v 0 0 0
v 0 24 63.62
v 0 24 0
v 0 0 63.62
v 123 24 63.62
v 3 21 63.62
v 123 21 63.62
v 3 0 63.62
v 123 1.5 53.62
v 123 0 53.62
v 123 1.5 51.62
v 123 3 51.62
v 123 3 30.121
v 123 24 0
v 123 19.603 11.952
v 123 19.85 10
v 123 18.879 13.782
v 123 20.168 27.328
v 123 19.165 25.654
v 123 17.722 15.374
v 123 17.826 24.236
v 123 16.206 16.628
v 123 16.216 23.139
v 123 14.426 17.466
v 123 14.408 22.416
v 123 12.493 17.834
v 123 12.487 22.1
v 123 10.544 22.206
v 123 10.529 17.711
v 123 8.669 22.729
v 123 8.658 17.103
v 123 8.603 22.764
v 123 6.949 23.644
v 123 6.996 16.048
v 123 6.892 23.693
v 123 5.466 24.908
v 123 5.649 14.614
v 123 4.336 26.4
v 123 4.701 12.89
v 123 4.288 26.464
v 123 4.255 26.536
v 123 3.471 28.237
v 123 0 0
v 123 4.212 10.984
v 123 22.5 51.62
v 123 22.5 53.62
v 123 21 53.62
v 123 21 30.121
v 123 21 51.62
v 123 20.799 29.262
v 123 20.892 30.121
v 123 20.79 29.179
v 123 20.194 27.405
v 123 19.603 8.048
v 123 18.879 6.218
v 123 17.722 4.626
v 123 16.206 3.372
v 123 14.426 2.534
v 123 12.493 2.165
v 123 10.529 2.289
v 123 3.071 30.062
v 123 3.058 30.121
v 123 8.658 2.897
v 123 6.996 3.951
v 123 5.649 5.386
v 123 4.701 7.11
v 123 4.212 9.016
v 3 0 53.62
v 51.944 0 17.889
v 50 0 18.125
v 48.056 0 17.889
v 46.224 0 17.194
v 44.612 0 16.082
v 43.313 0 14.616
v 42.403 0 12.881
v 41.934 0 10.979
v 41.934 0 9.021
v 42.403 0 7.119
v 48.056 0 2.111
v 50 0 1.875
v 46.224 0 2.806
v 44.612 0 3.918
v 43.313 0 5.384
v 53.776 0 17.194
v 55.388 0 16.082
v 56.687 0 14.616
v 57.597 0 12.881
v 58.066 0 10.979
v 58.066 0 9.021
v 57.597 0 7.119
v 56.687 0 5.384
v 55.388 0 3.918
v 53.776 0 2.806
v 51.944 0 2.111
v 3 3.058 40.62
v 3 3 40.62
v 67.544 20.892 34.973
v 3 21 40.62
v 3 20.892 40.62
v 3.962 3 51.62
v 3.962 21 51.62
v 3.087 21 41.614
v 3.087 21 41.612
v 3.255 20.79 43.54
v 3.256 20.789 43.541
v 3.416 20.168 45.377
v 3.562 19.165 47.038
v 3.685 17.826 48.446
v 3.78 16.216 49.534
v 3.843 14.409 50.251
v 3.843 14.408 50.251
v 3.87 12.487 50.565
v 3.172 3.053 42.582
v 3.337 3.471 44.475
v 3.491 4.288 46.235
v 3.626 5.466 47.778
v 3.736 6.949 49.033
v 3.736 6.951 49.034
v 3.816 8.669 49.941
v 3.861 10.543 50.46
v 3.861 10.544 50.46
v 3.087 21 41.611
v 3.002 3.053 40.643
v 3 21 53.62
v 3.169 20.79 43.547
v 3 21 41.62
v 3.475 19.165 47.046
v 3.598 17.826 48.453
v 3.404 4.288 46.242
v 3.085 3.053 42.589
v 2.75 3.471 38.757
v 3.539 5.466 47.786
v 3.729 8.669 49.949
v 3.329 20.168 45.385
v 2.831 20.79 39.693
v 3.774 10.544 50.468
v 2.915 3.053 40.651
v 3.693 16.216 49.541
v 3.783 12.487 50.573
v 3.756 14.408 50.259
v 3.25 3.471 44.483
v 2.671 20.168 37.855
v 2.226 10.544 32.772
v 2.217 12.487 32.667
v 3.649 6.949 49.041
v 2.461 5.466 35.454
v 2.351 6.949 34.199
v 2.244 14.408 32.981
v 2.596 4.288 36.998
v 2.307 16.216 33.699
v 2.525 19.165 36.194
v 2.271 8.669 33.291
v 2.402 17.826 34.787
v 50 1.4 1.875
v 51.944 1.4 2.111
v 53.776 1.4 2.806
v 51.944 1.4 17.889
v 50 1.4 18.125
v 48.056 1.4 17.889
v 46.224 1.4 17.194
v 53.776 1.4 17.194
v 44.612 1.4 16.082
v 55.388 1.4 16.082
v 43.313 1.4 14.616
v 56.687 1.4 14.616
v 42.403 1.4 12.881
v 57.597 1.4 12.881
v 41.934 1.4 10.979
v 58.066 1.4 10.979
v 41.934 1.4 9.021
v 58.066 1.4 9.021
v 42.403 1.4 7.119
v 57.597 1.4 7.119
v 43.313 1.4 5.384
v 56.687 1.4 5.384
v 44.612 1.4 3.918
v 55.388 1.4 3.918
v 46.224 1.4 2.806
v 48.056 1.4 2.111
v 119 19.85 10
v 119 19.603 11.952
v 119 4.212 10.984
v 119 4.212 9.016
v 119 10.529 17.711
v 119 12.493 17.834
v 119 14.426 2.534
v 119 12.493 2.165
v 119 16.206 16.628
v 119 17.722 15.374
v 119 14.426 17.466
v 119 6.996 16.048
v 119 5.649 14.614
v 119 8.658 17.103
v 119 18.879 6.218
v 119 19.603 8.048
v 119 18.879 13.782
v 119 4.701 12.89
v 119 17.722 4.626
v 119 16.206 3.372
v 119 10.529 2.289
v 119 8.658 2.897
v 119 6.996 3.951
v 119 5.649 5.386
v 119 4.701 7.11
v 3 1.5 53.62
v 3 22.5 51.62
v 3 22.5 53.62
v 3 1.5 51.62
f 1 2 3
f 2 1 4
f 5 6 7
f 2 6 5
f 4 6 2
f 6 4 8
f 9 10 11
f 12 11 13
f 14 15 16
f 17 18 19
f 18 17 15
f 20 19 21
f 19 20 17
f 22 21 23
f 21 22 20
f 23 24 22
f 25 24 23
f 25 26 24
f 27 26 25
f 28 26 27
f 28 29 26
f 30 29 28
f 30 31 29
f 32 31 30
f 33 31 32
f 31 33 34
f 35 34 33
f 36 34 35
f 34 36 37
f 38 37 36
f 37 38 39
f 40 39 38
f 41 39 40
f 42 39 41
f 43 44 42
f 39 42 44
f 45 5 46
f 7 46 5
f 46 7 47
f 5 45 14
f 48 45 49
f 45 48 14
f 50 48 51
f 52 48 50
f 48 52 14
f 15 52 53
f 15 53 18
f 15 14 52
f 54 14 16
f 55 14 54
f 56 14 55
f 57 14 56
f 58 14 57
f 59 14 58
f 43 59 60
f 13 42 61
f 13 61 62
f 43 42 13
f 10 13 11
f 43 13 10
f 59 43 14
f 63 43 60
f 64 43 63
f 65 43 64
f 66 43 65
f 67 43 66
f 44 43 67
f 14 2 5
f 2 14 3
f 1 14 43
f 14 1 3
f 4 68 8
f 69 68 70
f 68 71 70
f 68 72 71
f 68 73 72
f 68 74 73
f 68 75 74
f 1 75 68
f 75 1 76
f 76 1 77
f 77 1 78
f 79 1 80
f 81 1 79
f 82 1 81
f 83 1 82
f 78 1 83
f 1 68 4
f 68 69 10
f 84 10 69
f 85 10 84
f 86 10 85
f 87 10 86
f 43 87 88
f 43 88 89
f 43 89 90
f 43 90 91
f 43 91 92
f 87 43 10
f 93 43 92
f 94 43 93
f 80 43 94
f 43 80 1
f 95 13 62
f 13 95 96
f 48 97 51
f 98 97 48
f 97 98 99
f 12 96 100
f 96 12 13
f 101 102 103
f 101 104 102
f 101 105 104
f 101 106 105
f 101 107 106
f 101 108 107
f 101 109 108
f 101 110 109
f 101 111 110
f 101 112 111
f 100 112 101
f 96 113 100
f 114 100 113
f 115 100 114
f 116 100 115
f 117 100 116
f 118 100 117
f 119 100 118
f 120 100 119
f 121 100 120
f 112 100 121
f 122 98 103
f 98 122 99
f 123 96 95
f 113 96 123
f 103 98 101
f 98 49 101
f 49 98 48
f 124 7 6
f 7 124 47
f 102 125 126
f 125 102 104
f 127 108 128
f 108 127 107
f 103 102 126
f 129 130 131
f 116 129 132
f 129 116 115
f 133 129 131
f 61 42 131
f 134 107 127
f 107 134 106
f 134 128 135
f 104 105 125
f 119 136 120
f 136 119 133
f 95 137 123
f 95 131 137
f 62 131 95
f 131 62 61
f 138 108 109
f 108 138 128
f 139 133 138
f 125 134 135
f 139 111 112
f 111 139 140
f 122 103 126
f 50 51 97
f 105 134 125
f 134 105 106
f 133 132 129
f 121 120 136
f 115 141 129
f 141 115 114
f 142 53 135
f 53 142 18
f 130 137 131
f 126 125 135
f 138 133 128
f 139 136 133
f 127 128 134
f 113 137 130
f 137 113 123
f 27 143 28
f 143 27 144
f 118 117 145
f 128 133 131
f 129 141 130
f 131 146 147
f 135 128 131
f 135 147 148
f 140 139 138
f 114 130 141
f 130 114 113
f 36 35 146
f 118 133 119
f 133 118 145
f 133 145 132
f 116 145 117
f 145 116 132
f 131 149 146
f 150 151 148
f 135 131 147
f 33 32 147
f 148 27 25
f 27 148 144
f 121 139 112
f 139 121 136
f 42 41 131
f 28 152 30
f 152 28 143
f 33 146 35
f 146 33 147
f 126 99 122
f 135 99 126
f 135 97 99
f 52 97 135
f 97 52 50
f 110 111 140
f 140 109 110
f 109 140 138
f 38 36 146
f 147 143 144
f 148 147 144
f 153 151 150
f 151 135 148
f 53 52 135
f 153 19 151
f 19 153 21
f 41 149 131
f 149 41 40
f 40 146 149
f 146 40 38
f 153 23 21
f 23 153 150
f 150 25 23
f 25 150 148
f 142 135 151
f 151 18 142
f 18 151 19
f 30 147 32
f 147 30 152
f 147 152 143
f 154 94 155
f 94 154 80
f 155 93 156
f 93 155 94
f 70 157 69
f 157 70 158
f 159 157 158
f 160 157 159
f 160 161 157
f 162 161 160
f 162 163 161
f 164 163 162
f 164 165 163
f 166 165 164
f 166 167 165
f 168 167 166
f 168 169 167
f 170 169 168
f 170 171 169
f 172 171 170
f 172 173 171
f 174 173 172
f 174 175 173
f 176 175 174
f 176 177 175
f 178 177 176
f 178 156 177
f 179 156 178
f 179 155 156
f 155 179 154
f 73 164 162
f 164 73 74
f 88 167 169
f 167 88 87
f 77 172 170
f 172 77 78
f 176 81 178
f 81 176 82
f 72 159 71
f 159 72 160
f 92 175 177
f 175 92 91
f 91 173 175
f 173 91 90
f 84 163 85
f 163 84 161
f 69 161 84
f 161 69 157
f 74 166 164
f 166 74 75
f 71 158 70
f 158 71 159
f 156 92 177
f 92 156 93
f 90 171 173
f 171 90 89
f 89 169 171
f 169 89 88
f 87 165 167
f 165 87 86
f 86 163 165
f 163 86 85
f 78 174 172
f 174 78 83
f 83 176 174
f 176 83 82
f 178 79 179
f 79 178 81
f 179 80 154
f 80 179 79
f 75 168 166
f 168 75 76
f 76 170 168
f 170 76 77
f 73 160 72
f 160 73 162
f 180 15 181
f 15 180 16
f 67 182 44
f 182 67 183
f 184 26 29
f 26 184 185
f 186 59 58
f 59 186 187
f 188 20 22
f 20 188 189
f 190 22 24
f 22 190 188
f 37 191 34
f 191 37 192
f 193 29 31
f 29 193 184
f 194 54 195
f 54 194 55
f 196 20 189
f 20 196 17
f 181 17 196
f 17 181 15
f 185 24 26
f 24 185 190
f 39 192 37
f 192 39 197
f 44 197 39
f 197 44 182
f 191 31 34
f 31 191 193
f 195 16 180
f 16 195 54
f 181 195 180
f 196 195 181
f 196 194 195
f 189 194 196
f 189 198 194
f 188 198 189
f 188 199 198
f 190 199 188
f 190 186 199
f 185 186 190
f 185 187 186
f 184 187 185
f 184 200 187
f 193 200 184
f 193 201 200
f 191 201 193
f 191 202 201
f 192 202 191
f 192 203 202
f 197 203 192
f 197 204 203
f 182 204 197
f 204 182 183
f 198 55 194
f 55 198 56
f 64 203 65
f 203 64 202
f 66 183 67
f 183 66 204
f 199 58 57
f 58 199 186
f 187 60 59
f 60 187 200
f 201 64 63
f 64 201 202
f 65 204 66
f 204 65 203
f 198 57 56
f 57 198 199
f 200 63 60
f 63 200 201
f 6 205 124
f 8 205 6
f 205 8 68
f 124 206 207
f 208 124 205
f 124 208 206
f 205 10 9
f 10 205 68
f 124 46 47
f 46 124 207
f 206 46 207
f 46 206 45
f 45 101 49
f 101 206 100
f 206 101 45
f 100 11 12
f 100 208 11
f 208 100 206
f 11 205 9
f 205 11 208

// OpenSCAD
// file: PotionExplosionMarbleHiddenTrackCore.scad
//TODO: Get correct length
length = 123;
diameter = 18;
wallThickness = 3;
angle = 5;
floorThickness = 10;
heightStepDown = .2;
offset = diameter + 5;
height = 40.42 + heightStepDown + offset;
washerDiameter = 16.25;
washerHeight = 1.4;
washerHeightOffset = 1;
magnetHeightOffset = 1;
magnetBaseInnerDiameter = 15.4;
frontMagnetBaseInnerDiameter = magnetBaseInnerDiameter + .3;
magnetHeight = 4.0;
width = diameter + wallThickness * 2;
centerOfConnectorX = 50;
centerOfConnectorY = 10;
centerOfBackConnectorX = width/2;
echo(centerOfBackConnectorX);
lidHeight = 2;
backstopHeight = 10;

module Track(useLeftConnector, useRightConnector) {
    difference(){

        cube([length, width, height]);
        
        translate([wallThickness, wallThickness, height - offset])
            rotate([0, angle, 0])
                cube([length + wallThickness, width - wallThickness * 2, height]);
        
        translate([wallThickness, diameter/2 + wallThickness, height - offset + 1 ])
            rotate([90 + angle, 0, 90])
                cylinder(length + 3, d=diameter);
        if(useLeftConnector)
            translate([centerOfConnectorX, washerHeight, centerOfConnectorY])
                rotate([90, 90, 0])
                    cylinder(washerHeight, d=washerDiameter);
        if(useRightConnector)
        translate([centerOfConnectorX, width, centerOfConnectorY])
            rotate([90, 90, 0])
                cylinder(magnetHeight, d=magnetBaseInnerDiameter);
        
    //    translate([0, centerOfBackConnectorX, centerOfConnectorY])
    //        rotate([90, 0, 90])
    //            cylinder(magnetHeight, d=magnetBaseInnerDiameter);
        
        translate([length - magnetHeight, centerOfBackConnectorX, centerOfConnectorY])
            rotate([90, 0, 90])
                cylinder(magnetHeight, d=frontMagnetBaseInnerDiameter);


        translate([wallThickness,wallThickness/2,height - (backstopHeight + lidHeight)])
            cube([length,width - wallThickness,lidHeight]);
    }

    //translate([length, 0, 0])
    //    import("C:/Code/Git/3DPrint/PotionExplosionMarbleTrack.stl");

}
// main file
include<PotionExplosionMarbleHiddenTrackCore.scad>

difference(){

    Track(true, false);
    translate([wallThickness,0,height - backstopHeight])
        cube([length,width - wallThickness,backstopHeight]);

}
